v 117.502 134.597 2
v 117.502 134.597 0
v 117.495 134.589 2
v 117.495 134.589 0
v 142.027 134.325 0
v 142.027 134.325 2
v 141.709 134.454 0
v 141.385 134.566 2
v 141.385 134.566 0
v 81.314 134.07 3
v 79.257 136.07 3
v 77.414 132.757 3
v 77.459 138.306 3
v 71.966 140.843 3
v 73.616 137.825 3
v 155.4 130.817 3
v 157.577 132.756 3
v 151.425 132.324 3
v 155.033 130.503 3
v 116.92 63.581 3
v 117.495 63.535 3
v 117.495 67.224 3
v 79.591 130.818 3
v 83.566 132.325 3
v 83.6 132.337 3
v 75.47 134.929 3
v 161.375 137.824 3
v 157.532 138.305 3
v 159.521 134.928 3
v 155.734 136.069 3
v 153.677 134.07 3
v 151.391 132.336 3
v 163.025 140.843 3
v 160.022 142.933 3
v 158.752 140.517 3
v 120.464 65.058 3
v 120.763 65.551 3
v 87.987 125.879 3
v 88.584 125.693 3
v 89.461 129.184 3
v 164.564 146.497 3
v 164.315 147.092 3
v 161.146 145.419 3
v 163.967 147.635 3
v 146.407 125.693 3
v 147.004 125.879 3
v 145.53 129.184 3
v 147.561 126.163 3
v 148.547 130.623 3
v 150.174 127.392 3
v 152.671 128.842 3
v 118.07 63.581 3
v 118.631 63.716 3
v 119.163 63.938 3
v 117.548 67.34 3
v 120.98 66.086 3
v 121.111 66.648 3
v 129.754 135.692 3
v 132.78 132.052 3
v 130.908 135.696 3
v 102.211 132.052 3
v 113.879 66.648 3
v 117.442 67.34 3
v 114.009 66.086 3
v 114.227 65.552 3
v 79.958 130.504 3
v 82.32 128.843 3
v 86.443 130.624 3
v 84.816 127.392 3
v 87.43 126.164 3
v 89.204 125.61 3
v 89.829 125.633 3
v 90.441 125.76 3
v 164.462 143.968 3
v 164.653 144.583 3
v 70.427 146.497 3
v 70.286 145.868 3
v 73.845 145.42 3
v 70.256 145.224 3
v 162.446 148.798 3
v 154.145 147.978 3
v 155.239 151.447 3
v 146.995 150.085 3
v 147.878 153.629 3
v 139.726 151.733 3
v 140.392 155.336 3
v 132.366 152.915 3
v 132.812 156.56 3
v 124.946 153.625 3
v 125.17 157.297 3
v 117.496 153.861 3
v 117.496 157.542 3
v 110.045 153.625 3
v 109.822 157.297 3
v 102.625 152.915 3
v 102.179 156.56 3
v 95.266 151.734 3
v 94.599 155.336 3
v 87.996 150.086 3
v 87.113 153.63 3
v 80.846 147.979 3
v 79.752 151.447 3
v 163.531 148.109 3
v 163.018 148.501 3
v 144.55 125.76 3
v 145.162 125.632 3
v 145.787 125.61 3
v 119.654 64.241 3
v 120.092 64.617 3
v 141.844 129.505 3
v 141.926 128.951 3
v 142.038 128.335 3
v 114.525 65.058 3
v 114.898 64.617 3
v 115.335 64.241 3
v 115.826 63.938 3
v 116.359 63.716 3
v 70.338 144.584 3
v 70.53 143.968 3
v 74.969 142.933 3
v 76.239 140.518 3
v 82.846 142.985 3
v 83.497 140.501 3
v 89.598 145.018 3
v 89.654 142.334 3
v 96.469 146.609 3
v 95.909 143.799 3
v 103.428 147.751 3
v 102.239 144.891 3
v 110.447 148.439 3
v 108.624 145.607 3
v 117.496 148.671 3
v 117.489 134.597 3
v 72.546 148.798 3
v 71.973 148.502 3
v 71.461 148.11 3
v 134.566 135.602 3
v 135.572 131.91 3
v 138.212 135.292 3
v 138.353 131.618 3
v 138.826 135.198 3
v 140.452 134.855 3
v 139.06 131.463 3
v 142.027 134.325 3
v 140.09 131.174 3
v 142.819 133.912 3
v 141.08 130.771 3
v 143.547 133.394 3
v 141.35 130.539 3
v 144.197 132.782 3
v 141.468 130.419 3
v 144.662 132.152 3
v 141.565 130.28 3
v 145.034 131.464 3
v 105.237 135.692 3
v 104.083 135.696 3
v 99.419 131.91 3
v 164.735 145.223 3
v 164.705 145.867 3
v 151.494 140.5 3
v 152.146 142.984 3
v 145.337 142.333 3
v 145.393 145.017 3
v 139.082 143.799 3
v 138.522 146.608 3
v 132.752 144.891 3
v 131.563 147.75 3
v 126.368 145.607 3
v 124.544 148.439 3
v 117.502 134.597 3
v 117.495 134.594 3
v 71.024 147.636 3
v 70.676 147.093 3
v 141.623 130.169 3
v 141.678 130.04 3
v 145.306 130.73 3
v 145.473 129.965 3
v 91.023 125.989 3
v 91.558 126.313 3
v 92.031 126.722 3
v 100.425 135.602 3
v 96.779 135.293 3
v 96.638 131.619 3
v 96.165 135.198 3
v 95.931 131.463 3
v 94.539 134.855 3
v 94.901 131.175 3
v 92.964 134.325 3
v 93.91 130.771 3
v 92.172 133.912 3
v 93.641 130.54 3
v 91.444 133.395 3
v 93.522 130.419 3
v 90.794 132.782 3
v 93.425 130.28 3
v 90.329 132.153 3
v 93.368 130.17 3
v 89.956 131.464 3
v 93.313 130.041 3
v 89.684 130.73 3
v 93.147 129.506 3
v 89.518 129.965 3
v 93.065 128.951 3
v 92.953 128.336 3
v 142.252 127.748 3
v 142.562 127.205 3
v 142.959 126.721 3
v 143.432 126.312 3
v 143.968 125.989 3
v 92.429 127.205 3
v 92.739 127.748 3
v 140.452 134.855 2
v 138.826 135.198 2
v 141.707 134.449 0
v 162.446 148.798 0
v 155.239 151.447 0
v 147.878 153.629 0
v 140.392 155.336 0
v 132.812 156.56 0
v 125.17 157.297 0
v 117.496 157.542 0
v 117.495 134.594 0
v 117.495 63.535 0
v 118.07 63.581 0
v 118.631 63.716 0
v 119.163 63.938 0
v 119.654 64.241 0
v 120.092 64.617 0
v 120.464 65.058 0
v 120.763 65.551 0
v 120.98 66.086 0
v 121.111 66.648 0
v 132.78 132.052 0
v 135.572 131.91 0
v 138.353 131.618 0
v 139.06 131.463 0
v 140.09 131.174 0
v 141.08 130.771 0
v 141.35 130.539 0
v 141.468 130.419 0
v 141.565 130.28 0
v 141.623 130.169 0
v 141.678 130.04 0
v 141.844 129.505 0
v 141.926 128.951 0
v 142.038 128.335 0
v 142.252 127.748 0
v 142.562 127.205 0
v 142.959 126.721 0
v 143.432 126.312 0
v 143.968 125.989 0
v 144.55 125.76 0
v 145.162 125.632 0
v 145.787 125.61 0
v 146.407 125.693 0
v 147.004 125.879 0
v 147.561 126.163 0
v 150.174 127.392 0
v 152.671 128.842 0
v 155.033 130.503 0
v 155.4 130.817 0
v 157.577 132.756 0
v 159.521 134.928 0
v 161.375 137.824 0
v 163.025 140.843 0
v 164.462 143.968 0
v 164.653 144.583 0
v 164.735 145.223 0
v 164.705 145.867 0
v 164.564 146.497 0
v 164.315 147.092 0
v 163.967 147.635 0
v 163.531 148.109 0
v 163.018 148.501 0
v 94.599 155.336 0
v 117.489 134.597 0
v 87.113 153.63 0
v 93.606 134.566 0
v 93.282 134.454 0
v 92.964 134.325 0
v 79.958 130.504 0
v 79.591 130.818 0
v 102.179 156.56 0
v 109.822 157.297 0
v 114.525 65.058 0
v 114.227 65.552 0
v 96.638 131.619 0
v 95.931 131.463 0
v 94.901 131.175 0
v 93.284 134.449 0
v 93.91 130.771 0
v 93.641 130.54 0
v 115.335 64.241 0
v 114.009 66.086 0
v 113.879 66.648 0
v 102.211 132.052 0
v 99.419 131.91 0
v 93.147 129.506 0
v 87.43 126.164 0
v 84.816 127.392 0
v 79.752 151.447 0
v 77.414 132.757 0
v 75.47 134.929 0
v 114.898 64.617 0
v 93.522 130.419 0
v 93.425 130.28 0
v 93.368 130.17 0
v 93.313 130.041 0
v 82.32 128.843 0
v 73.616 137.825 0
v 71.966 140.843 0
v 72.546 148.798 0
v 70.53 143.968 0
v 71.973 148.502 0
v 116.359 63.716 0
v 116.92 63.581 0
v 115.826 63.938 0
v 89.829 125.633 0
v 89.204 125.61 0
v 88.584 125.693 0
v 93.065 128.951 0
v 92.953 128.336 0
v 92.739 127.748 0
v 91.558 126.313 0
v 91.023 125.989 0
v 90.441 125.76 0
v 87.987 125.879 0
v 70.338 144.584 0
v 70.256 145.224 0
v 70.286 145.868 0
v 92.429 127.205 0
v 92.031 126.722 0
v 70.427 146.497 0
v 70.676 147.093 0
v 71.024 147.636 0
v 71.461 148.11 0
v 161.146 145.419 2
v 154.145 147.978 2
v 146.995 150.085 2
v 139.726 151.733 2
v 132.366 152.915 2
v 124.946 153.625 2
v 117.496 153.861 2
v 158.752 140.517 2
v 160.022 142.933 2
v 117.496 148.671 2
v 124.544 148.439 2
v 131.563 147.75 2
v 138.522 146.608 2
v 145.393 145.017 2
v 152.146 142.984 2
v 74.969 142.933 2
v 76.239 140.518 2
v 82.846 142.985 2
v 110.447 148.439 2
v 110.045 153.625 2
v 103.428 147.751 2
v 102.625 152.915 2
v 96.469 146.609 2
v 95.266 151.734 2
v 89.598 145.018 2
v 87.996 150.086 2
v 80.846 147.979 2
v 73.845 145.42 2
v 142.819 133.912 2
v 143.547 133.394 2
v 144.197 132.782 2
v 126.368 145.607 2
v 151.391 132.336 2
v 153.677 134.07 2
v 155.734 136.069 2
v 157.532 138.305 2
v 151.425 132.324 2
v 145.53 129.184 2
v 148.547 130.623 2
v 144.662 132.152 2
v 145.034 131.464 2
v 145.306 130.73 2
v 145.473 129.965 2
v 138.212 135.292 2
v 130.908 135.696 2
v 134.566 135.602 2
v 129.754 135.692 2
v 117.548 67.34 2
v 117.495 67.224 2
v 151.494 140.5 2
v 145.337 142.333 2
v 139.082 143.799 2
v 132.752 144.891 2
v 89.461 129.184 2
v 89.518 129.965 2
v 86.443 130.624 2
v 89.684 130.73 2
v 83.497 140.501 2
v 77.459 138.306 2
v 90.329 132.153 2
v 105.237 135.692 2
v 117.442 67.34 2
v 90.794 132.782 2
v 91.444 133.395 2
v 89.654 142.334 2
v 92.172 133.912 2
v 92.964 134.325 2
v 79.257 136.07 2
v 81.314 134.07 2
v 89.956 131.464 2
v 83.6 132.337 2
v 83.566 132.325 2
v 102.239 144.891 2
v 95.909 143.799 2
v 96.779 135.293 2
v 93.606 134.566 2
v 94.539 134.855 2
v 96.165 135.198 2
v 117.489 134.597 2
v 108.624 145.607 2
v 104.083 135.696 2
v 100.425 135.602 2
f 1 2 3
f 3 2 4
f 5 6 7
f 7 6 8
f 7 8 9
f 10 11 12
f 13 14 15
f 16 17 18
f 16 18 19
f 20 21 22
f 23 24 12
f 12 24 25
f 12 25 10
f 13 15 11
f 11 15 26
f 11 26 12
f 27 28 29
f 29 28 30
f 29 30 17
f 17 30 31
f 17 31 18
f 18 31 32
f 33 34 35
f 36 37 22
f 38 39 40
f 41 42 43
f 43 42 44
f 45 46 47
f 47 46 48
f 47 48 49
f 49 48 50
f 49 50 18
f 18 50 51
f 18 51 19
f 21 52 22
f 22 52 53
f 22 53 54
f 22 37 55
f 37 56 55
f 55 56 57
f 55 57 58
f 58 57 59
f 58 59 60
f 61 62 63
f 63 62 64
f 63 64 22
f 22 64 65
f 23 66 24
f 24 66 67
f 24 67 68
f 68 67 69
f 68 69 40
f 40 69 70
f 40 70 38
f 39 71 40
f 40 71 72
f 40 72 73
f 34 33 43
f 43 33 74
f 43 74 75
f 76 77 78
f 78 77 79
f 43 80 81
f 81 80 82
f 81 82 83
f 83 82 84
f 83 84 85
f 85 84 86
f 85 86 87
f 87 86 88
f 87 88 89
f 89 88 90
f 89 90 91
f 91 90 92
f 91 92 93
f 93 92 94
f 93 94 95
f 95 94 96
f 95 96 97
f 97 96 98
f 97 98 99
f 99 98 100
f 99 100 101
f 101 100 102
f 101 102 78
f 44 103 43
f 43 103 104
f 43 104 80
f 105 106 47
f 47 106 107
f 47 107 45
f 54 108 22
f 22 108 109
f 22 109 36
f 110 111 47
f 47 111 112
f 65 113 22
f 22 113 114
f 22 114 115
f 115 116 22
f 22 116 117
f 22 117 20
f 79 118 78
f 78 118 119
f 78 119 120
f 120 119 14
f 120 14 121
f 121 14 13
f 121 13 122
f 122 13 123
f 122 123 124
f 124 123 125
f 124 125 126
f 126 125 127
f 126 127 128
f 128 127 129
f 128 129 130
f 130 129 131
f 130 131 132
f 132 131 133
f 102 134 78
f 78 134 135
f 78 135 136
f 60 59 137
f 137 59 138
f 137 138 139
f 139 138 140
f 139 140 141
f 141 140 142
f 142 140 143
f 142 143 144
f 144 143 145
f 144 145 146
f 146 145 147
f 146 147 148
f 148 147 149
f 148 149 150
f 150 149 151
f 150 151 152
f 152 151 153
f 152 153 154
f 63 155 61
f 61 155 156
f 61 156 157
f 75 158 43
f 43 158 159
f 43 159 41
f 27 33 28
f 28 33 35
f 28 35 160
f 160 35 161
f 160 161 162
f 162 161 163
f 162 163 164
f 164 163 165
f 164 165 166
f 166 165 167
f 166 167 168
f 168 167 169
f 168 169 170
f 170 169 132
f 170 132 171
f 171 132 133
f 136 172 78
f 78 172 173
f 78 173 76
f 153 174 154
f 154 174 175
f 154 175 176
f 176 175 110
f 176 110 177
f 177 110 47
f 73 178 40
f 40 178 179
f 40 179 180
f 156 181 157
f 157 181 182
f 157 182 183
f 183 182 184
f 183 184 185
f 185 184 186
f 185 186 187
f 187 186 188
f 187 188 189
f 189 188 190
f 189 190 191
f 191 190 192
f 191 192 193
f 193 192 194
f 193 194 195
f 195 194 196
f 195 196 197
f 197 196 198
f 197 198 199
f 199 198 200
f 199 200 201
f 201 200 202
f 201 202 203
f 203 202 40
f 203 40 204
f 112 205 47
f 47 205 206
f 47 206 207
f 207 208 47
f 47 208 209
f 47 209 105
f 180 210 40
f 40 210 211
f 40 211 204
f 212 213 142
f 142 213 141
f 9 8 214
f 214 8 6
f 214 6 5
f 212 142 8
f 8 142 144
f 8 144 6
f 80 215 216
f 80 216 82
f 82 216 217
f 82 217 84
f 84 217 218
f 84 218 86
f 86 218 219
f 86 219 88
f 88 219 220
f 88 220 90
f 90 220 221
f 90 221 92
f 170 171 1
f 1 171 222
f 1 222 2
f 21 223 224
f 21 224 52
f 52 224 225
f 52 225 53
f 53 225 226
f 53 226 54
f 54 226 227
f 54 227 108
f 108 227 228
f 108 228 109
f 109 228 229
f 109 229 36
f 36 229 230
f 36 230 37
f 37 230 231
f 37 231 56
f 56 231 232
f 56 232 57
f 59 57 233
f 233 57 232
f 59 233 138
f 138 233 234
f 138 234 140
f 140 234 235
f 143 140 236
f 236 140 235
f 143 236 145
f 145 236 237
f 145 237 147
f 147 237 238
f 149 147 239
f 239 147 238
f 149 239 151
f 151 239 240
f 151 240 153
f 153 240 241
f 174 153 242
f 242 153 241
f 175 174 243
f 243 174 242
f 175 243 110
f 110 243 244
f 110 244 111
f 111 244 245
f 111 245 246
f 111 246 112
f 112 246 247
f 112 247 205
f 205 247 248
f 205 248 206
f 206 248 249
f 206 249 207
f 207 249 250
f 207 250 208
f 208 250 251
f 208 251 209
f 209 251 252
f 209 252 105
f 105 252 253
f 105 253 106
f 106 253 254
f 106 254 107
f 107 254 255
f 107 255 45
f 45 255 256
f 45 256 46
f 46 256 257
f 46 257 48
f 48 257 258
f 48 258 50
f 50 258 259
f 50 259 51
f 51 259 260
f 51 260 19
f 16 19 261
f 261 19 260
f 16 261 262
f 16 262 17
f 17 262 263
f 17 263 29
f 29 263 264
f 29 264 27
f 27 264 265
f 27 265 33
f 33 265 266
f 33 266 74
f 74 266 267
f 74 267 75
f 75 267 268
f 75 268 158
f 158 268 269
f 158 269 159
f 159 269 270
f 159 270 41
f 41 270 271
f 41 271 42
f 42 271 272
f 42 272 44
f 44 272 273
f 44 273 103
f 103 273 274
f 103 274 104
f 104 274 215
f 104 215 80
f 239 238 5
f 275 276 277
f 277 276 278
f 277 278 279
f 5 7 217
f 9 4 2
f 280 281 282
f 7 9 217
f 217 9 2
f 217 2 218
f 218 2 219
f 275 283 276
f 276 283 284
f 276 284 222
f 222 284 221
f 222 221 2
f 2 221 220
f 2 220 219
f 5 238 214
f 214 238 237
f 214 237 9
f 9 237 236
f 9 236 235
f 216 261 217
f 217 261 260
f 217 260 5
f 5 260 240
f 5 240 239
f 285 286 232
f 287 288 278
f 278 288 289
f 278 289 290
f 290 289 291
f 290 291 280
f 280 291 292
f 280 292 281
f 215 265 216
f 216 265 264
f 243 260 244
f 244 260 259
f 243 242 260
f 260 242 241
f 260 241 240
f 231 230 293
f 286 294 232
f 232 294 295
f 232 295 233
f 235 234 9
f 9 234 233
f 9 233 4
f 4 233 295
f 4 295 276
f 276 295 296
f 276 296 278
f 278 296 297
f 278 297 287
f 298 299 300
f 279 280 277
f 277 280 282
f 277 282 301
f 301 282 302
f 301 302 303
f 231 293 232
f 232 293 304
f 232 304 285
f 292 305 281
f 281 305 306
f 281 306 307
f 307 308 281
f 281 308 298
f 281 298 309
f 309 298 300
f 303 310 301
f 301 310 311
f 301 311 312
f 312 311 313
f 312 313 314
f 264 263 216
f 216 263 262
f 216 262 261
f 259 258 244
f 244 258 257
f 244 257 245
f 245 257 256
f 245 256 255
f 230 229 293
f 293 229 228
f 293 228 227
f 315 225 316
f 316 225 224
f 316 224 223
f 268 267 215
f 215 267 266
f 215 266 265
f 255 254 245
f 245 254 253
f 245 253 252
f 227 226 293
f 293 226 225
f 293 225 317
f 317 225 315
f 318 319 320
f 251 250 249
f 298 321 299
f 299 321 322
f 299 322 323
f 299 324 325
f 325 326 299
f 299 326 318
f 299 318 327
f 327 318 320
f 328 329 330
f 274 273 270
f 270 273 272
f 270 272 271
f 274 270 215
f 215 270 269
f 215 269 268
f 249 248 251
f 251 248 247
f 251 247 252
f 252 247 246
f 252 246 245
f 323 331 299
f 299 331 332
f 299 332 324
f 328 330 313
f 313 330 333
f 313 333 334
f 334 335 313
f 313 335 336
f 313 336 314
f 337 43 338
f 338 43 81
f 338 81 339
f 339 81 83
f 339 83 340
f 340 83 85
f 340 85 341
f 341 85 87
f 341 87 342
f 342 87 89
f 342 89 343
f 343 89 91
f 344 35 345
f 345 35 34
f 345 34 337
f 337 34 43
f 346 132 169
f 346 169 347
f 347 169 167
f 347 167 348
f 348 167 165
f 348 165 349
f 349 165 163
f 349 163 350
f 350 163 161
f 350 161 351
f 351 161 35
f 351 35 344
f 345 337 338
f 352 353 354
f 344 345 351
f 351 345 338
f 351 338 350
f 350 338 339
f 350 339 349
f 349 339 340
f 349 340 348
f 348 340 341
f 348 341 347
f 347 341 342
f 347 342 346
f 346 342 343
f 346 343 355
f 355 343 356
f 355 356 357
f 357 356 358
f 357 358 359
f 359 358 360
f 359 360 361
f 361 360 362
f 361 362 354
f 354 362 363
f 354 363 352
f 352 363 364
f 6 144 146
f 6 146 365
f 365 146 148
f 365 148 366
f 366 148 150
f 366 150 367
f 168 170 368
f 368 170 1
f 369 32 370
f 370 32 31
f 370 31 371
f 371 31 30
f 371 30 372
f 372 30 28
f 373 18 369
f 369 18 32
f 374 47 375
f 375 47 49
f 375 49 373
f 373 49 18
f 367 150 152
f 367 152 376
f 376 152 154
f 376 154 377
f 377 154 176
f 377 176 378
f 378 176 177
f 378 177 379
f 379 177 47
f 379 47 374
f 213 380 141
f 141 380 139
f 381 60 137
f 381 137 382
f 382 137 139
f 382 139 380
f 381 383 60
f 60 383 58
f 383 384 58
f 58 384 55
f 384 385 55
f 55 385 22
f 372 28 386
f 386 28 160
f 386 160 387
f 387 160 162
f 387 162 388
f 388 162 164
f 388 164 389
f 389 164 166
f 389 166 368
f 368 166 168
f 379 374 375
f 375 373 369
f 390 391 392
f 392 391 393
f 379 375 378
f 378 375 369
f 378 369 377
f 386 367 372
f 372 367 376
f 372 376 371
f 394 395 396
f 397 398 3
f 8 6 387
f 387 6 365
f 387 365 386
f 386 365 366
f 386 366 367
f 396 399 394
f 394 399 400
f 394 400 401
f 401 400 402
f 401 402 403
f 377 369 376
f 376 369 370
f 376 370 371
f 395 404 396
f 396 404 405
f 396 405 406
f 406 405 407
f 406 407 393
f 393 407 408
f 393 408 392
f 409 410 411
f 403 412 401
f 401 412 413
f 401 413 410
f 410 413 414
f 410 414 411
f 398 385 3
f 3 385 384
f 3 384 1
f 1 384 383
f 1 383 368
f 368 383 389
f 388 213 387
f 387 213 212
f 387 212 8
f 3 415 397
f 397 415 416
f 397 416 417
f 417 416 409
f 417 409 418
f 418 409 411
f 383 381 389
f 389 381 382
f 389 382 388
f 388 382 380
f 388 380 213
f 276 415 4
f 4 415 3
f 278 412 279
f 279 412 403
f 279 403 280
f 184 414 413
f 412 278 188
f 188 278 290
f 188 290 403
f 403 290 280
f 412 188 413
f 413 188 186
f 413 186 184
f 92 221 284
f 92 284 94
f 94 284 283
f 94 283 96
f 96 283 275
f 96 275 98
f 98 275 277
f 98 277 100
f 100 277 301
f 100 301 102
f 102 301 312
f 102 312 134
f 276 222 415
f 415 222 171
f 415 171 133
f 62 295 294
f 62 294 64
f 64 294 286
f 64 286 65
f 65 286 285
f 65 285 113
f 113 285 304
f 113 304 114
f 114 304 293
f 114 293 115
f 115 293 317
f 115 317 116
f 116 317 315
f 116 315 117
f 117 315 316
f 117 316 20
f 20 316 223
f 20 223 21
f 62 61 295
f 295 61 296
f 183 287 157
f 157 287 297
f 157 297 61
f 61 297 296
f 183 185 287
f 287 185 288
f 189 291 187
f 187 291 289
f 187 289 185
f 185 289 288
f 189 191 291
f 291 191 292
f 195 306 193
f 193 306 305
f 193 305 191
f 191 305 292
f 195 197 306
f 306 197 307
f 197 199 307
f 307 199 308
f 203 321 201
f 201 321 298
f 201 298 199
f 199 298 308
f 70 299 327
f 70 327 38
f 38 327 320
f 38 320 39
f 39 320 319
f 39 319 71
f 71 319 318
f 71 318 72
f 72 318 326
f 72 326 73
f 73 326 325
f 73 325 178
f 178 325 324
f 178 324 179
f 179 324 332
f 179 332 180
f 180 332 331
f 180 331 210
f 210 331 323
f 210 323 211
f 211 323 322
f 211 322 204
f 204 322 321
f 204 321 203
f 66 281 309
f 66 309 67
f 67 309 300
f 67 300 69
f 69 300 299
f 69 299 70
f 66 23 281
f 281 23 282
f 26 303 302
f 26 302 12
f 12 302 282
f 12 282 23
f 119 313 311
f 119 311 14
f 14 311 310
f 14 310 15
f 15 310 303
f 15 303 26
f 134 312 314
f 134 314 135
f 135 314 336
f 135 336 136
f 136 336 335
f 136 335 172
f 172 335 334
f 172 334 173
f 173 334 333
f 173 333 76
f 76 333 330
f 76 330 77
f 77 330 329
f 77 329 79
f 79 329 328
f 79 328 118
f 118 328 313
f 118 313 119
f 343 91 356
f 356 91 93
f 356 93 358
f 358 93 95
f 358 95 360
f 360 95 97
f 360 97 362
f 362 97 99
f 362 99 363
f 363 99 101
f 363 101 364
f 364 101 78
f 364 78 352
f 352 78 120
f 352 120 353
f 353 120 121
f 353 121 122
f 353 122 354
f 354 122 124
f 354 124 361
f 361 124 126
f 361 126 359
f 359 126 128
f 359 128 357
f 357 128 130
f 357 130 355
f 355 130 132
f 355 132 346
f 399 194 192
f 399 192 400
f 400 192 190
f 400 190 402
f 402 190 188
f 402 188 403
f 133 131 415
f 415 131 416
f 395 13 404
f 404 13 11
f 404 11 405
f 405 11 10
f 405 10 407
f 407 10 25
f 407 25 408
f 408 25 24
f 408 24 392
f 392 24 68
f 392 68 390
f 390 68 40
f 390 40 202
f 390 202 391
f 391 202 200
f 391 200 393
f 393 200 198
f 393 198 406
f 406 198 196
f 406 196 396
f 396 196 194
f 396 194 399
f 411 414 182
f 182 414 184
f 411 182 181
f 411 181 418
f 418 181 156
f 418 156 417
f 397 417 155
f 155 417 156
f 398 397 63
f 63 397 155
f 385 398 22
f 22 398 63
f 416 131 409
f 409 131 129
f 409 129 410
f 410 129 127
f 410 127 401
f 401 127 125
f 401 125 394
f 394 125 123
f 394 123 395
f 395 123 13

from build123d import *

# Parameters (mm, degrees)
EXTRUDE_1_DEPTH     = 3
CUT_EXTRUDE_START   = 2
CUT_EXTRUDE_2_DEPTH = 1


# Read off the part's stored shape, not the designer's step: 凸台-拉伸1
with BuildPart() as part:
    # 凸台-拉伸1 outline → 凸台-拉伸1 (new body)
    with BuildSketch(Plane.XY):
        with BuildLine():
            ThreePointArc((162.445637333, 148.797622459), (140.392019923, 155.335903316), (117.495676879, 157.542401146))
            Line((117.495676879, 157.542401146), (117.495472536, 134.594312545))
            Line((117.495472536, 134.594312545), (117.501791432, 134.597120738))
            Line((117.501791432, 134.597120738), (117.495472491, 134.589273862))
            Line((117.495472491, 134.589273862), (117.494839782, 63.535147265))
            ThreePointArc((117.494839782, 63.535147265), (119.8804724, 64.42052621), (121.110863339, 66.647918633))
            Line((121.110863339, 66.647918633), (132.779928848, 132.052204294))
            ThreePointArc((132.779928848, 132.052204294), (135.572070277, 131.909773522), (138.352611472, 131.618344369))
            Line((138.352611472, 131.618344369), (139.05961627, 131.462829611))
            ThreePointArc((139.05961627, 131.462829611), (140.089641052, 131.174253974), (141.080439341, 130.771084408))
            Line((141.080439341, 130.771084408), (141.349701494, 130.539383423))
            ThreePointArc((141.349701494, 130.539383423), (141.468445777, 130.418556757), (141.565445548, 130.279667116))
            Line((141.565445548, 130.279667116), (141.622802734, 130.169204712))
            Line((141.622802734, 130.169204712), (141.678161833, 130.040435885))
            ThreePointArc((141.678161833, 130.040435885), (141.844152912, 129.505116408), (141.925655993, 128.950610116))
            ThreePointArc((141.925655993, 128.950610116), (143.967564284, 125.988506969), (147.561018067, 126.163248026))
            ThreePointArc((147.561018067, 126.163248026), (151.438605128, 128.089662738), (155.033071354, 130.503491151))
            Line((155.033071354, 130.503491151), (155.399994914, 130.81714673))
            ThreePointArc((155.399994914, 130.81714673), (157.576828206, 132.755797519), (159.520841192, 134.927843461))
            ThreePointArc((159.520841192, 134.927843461), (162.226362027, 139.319204759), (164.46157289, 143.967616254))
            ThreePointArc((164.46157289, 143.967616254), (164.452492947, 146.79953259), (162.445637333, 148.797622459))
        make_face()
        with BuildLine():
            ThreePointArc((142.027144862, 134.324698861), (141.707350512, 134.449020168), (141.384659698, 134.56561713))
            ThreePointArc((141.384659698, 134.56561713), (141.70908775, 134.453653063), (142.027144862, 134.324698861))
        make_face(mode=Mode.SUBTRACT)
    extrude(amount=EXTRUDE_1_DEPTH)

    # 草图4<3> → 切除-拉伸2 (cut)
    with BuildSketch(Plane.XY.offset(CUT_EXTRUDE_START)):
        with BuildLine():
            Line((129.754075071, 135.691919441), (130.907867432, 135.696136475))
            ThreePointArc((130.907867432, 135.696136475), (134.565751216, 135.60175956), (138.211736169, 135.292220379))
            Line((138.211736169, 135.292220379), (138.826217651, 135.197784424))
            ThreePointArc((138.826217651, 135.197784424), (140.120063117, 134.940887305), (141.384659698, 134.56561713))
            ThreePointArc((141.384659698, 134.56561713), (142.906940981, 133.857183707), (144.196597811, 132.782007684))
            ThreePointArc((144.196597811, 132.782007684), (145.183330218, 131.10158314), (145.529755049, 129.183913374))
            ThreePointArc((145.529755049, 129.183913374), (148.547404982, 130.623014397), (151.425386163, 132.324321891))
            ThreePointArc((151.425386163, 132.324321891), (151.40801976, 132.330242443), (151.390651634, 132.336157937))
            ThreePointArc((151.390651634, 132.336157937), (154.736109947, 135.038022712), (157.532027719, 138.305285848))
            ThreePointArc((157.532027719, 138.305285848), (142.220764521, 143.112508129), (126.367587205, 145.606688512))
            Line((126.367587205, 145.606688512), (117.501791432, 134.597120738))
            Line((117.501791432, 134.597120738), (117.495472491, 134.589273862))
            Line((117.495472491, 134.589273862), (117.494872633, 67.224367653))
            Line((117.494872633, 67.224367653), (117.548172453, 67.340042661))
            Line((117.548172453, 67.340042661), (129.754075071, 135.691919441))
        make_face()
        with BuildLine():
            Line((117.495644097, 153.860880328), (117.495597882, 148.670868738))
            ThreePointArc((117.495597882, 148.670868738), (138.52210518, 146.608292632), (158.752427095, 140.517126524))
            ThreePointArc((158.752427095, 140.517126524), (160.02206081, 142.932720764), (161.14615728, 145.419379652))
            ThreePointArc((161.14615728, 145.419379652), (139.725666091, 151.733148545), (117.495644097, 153.860880328))
        make_face()
    extrude(amount=CUT_EXTRUDE_2_DEPTH, mode=Mode.SUBTRACT)

    # 镜向2: part across plane


with BuildPart() as part_1:
    add(part.part)
    add(part.part.mirror(Plane(origin=(117.494274017, -0.00104624, 3), x_dir=(0, 0, 1), z_dir=(0.999999999960354, -8.904603525034718e-06, 0))))


solid = part_1.part
